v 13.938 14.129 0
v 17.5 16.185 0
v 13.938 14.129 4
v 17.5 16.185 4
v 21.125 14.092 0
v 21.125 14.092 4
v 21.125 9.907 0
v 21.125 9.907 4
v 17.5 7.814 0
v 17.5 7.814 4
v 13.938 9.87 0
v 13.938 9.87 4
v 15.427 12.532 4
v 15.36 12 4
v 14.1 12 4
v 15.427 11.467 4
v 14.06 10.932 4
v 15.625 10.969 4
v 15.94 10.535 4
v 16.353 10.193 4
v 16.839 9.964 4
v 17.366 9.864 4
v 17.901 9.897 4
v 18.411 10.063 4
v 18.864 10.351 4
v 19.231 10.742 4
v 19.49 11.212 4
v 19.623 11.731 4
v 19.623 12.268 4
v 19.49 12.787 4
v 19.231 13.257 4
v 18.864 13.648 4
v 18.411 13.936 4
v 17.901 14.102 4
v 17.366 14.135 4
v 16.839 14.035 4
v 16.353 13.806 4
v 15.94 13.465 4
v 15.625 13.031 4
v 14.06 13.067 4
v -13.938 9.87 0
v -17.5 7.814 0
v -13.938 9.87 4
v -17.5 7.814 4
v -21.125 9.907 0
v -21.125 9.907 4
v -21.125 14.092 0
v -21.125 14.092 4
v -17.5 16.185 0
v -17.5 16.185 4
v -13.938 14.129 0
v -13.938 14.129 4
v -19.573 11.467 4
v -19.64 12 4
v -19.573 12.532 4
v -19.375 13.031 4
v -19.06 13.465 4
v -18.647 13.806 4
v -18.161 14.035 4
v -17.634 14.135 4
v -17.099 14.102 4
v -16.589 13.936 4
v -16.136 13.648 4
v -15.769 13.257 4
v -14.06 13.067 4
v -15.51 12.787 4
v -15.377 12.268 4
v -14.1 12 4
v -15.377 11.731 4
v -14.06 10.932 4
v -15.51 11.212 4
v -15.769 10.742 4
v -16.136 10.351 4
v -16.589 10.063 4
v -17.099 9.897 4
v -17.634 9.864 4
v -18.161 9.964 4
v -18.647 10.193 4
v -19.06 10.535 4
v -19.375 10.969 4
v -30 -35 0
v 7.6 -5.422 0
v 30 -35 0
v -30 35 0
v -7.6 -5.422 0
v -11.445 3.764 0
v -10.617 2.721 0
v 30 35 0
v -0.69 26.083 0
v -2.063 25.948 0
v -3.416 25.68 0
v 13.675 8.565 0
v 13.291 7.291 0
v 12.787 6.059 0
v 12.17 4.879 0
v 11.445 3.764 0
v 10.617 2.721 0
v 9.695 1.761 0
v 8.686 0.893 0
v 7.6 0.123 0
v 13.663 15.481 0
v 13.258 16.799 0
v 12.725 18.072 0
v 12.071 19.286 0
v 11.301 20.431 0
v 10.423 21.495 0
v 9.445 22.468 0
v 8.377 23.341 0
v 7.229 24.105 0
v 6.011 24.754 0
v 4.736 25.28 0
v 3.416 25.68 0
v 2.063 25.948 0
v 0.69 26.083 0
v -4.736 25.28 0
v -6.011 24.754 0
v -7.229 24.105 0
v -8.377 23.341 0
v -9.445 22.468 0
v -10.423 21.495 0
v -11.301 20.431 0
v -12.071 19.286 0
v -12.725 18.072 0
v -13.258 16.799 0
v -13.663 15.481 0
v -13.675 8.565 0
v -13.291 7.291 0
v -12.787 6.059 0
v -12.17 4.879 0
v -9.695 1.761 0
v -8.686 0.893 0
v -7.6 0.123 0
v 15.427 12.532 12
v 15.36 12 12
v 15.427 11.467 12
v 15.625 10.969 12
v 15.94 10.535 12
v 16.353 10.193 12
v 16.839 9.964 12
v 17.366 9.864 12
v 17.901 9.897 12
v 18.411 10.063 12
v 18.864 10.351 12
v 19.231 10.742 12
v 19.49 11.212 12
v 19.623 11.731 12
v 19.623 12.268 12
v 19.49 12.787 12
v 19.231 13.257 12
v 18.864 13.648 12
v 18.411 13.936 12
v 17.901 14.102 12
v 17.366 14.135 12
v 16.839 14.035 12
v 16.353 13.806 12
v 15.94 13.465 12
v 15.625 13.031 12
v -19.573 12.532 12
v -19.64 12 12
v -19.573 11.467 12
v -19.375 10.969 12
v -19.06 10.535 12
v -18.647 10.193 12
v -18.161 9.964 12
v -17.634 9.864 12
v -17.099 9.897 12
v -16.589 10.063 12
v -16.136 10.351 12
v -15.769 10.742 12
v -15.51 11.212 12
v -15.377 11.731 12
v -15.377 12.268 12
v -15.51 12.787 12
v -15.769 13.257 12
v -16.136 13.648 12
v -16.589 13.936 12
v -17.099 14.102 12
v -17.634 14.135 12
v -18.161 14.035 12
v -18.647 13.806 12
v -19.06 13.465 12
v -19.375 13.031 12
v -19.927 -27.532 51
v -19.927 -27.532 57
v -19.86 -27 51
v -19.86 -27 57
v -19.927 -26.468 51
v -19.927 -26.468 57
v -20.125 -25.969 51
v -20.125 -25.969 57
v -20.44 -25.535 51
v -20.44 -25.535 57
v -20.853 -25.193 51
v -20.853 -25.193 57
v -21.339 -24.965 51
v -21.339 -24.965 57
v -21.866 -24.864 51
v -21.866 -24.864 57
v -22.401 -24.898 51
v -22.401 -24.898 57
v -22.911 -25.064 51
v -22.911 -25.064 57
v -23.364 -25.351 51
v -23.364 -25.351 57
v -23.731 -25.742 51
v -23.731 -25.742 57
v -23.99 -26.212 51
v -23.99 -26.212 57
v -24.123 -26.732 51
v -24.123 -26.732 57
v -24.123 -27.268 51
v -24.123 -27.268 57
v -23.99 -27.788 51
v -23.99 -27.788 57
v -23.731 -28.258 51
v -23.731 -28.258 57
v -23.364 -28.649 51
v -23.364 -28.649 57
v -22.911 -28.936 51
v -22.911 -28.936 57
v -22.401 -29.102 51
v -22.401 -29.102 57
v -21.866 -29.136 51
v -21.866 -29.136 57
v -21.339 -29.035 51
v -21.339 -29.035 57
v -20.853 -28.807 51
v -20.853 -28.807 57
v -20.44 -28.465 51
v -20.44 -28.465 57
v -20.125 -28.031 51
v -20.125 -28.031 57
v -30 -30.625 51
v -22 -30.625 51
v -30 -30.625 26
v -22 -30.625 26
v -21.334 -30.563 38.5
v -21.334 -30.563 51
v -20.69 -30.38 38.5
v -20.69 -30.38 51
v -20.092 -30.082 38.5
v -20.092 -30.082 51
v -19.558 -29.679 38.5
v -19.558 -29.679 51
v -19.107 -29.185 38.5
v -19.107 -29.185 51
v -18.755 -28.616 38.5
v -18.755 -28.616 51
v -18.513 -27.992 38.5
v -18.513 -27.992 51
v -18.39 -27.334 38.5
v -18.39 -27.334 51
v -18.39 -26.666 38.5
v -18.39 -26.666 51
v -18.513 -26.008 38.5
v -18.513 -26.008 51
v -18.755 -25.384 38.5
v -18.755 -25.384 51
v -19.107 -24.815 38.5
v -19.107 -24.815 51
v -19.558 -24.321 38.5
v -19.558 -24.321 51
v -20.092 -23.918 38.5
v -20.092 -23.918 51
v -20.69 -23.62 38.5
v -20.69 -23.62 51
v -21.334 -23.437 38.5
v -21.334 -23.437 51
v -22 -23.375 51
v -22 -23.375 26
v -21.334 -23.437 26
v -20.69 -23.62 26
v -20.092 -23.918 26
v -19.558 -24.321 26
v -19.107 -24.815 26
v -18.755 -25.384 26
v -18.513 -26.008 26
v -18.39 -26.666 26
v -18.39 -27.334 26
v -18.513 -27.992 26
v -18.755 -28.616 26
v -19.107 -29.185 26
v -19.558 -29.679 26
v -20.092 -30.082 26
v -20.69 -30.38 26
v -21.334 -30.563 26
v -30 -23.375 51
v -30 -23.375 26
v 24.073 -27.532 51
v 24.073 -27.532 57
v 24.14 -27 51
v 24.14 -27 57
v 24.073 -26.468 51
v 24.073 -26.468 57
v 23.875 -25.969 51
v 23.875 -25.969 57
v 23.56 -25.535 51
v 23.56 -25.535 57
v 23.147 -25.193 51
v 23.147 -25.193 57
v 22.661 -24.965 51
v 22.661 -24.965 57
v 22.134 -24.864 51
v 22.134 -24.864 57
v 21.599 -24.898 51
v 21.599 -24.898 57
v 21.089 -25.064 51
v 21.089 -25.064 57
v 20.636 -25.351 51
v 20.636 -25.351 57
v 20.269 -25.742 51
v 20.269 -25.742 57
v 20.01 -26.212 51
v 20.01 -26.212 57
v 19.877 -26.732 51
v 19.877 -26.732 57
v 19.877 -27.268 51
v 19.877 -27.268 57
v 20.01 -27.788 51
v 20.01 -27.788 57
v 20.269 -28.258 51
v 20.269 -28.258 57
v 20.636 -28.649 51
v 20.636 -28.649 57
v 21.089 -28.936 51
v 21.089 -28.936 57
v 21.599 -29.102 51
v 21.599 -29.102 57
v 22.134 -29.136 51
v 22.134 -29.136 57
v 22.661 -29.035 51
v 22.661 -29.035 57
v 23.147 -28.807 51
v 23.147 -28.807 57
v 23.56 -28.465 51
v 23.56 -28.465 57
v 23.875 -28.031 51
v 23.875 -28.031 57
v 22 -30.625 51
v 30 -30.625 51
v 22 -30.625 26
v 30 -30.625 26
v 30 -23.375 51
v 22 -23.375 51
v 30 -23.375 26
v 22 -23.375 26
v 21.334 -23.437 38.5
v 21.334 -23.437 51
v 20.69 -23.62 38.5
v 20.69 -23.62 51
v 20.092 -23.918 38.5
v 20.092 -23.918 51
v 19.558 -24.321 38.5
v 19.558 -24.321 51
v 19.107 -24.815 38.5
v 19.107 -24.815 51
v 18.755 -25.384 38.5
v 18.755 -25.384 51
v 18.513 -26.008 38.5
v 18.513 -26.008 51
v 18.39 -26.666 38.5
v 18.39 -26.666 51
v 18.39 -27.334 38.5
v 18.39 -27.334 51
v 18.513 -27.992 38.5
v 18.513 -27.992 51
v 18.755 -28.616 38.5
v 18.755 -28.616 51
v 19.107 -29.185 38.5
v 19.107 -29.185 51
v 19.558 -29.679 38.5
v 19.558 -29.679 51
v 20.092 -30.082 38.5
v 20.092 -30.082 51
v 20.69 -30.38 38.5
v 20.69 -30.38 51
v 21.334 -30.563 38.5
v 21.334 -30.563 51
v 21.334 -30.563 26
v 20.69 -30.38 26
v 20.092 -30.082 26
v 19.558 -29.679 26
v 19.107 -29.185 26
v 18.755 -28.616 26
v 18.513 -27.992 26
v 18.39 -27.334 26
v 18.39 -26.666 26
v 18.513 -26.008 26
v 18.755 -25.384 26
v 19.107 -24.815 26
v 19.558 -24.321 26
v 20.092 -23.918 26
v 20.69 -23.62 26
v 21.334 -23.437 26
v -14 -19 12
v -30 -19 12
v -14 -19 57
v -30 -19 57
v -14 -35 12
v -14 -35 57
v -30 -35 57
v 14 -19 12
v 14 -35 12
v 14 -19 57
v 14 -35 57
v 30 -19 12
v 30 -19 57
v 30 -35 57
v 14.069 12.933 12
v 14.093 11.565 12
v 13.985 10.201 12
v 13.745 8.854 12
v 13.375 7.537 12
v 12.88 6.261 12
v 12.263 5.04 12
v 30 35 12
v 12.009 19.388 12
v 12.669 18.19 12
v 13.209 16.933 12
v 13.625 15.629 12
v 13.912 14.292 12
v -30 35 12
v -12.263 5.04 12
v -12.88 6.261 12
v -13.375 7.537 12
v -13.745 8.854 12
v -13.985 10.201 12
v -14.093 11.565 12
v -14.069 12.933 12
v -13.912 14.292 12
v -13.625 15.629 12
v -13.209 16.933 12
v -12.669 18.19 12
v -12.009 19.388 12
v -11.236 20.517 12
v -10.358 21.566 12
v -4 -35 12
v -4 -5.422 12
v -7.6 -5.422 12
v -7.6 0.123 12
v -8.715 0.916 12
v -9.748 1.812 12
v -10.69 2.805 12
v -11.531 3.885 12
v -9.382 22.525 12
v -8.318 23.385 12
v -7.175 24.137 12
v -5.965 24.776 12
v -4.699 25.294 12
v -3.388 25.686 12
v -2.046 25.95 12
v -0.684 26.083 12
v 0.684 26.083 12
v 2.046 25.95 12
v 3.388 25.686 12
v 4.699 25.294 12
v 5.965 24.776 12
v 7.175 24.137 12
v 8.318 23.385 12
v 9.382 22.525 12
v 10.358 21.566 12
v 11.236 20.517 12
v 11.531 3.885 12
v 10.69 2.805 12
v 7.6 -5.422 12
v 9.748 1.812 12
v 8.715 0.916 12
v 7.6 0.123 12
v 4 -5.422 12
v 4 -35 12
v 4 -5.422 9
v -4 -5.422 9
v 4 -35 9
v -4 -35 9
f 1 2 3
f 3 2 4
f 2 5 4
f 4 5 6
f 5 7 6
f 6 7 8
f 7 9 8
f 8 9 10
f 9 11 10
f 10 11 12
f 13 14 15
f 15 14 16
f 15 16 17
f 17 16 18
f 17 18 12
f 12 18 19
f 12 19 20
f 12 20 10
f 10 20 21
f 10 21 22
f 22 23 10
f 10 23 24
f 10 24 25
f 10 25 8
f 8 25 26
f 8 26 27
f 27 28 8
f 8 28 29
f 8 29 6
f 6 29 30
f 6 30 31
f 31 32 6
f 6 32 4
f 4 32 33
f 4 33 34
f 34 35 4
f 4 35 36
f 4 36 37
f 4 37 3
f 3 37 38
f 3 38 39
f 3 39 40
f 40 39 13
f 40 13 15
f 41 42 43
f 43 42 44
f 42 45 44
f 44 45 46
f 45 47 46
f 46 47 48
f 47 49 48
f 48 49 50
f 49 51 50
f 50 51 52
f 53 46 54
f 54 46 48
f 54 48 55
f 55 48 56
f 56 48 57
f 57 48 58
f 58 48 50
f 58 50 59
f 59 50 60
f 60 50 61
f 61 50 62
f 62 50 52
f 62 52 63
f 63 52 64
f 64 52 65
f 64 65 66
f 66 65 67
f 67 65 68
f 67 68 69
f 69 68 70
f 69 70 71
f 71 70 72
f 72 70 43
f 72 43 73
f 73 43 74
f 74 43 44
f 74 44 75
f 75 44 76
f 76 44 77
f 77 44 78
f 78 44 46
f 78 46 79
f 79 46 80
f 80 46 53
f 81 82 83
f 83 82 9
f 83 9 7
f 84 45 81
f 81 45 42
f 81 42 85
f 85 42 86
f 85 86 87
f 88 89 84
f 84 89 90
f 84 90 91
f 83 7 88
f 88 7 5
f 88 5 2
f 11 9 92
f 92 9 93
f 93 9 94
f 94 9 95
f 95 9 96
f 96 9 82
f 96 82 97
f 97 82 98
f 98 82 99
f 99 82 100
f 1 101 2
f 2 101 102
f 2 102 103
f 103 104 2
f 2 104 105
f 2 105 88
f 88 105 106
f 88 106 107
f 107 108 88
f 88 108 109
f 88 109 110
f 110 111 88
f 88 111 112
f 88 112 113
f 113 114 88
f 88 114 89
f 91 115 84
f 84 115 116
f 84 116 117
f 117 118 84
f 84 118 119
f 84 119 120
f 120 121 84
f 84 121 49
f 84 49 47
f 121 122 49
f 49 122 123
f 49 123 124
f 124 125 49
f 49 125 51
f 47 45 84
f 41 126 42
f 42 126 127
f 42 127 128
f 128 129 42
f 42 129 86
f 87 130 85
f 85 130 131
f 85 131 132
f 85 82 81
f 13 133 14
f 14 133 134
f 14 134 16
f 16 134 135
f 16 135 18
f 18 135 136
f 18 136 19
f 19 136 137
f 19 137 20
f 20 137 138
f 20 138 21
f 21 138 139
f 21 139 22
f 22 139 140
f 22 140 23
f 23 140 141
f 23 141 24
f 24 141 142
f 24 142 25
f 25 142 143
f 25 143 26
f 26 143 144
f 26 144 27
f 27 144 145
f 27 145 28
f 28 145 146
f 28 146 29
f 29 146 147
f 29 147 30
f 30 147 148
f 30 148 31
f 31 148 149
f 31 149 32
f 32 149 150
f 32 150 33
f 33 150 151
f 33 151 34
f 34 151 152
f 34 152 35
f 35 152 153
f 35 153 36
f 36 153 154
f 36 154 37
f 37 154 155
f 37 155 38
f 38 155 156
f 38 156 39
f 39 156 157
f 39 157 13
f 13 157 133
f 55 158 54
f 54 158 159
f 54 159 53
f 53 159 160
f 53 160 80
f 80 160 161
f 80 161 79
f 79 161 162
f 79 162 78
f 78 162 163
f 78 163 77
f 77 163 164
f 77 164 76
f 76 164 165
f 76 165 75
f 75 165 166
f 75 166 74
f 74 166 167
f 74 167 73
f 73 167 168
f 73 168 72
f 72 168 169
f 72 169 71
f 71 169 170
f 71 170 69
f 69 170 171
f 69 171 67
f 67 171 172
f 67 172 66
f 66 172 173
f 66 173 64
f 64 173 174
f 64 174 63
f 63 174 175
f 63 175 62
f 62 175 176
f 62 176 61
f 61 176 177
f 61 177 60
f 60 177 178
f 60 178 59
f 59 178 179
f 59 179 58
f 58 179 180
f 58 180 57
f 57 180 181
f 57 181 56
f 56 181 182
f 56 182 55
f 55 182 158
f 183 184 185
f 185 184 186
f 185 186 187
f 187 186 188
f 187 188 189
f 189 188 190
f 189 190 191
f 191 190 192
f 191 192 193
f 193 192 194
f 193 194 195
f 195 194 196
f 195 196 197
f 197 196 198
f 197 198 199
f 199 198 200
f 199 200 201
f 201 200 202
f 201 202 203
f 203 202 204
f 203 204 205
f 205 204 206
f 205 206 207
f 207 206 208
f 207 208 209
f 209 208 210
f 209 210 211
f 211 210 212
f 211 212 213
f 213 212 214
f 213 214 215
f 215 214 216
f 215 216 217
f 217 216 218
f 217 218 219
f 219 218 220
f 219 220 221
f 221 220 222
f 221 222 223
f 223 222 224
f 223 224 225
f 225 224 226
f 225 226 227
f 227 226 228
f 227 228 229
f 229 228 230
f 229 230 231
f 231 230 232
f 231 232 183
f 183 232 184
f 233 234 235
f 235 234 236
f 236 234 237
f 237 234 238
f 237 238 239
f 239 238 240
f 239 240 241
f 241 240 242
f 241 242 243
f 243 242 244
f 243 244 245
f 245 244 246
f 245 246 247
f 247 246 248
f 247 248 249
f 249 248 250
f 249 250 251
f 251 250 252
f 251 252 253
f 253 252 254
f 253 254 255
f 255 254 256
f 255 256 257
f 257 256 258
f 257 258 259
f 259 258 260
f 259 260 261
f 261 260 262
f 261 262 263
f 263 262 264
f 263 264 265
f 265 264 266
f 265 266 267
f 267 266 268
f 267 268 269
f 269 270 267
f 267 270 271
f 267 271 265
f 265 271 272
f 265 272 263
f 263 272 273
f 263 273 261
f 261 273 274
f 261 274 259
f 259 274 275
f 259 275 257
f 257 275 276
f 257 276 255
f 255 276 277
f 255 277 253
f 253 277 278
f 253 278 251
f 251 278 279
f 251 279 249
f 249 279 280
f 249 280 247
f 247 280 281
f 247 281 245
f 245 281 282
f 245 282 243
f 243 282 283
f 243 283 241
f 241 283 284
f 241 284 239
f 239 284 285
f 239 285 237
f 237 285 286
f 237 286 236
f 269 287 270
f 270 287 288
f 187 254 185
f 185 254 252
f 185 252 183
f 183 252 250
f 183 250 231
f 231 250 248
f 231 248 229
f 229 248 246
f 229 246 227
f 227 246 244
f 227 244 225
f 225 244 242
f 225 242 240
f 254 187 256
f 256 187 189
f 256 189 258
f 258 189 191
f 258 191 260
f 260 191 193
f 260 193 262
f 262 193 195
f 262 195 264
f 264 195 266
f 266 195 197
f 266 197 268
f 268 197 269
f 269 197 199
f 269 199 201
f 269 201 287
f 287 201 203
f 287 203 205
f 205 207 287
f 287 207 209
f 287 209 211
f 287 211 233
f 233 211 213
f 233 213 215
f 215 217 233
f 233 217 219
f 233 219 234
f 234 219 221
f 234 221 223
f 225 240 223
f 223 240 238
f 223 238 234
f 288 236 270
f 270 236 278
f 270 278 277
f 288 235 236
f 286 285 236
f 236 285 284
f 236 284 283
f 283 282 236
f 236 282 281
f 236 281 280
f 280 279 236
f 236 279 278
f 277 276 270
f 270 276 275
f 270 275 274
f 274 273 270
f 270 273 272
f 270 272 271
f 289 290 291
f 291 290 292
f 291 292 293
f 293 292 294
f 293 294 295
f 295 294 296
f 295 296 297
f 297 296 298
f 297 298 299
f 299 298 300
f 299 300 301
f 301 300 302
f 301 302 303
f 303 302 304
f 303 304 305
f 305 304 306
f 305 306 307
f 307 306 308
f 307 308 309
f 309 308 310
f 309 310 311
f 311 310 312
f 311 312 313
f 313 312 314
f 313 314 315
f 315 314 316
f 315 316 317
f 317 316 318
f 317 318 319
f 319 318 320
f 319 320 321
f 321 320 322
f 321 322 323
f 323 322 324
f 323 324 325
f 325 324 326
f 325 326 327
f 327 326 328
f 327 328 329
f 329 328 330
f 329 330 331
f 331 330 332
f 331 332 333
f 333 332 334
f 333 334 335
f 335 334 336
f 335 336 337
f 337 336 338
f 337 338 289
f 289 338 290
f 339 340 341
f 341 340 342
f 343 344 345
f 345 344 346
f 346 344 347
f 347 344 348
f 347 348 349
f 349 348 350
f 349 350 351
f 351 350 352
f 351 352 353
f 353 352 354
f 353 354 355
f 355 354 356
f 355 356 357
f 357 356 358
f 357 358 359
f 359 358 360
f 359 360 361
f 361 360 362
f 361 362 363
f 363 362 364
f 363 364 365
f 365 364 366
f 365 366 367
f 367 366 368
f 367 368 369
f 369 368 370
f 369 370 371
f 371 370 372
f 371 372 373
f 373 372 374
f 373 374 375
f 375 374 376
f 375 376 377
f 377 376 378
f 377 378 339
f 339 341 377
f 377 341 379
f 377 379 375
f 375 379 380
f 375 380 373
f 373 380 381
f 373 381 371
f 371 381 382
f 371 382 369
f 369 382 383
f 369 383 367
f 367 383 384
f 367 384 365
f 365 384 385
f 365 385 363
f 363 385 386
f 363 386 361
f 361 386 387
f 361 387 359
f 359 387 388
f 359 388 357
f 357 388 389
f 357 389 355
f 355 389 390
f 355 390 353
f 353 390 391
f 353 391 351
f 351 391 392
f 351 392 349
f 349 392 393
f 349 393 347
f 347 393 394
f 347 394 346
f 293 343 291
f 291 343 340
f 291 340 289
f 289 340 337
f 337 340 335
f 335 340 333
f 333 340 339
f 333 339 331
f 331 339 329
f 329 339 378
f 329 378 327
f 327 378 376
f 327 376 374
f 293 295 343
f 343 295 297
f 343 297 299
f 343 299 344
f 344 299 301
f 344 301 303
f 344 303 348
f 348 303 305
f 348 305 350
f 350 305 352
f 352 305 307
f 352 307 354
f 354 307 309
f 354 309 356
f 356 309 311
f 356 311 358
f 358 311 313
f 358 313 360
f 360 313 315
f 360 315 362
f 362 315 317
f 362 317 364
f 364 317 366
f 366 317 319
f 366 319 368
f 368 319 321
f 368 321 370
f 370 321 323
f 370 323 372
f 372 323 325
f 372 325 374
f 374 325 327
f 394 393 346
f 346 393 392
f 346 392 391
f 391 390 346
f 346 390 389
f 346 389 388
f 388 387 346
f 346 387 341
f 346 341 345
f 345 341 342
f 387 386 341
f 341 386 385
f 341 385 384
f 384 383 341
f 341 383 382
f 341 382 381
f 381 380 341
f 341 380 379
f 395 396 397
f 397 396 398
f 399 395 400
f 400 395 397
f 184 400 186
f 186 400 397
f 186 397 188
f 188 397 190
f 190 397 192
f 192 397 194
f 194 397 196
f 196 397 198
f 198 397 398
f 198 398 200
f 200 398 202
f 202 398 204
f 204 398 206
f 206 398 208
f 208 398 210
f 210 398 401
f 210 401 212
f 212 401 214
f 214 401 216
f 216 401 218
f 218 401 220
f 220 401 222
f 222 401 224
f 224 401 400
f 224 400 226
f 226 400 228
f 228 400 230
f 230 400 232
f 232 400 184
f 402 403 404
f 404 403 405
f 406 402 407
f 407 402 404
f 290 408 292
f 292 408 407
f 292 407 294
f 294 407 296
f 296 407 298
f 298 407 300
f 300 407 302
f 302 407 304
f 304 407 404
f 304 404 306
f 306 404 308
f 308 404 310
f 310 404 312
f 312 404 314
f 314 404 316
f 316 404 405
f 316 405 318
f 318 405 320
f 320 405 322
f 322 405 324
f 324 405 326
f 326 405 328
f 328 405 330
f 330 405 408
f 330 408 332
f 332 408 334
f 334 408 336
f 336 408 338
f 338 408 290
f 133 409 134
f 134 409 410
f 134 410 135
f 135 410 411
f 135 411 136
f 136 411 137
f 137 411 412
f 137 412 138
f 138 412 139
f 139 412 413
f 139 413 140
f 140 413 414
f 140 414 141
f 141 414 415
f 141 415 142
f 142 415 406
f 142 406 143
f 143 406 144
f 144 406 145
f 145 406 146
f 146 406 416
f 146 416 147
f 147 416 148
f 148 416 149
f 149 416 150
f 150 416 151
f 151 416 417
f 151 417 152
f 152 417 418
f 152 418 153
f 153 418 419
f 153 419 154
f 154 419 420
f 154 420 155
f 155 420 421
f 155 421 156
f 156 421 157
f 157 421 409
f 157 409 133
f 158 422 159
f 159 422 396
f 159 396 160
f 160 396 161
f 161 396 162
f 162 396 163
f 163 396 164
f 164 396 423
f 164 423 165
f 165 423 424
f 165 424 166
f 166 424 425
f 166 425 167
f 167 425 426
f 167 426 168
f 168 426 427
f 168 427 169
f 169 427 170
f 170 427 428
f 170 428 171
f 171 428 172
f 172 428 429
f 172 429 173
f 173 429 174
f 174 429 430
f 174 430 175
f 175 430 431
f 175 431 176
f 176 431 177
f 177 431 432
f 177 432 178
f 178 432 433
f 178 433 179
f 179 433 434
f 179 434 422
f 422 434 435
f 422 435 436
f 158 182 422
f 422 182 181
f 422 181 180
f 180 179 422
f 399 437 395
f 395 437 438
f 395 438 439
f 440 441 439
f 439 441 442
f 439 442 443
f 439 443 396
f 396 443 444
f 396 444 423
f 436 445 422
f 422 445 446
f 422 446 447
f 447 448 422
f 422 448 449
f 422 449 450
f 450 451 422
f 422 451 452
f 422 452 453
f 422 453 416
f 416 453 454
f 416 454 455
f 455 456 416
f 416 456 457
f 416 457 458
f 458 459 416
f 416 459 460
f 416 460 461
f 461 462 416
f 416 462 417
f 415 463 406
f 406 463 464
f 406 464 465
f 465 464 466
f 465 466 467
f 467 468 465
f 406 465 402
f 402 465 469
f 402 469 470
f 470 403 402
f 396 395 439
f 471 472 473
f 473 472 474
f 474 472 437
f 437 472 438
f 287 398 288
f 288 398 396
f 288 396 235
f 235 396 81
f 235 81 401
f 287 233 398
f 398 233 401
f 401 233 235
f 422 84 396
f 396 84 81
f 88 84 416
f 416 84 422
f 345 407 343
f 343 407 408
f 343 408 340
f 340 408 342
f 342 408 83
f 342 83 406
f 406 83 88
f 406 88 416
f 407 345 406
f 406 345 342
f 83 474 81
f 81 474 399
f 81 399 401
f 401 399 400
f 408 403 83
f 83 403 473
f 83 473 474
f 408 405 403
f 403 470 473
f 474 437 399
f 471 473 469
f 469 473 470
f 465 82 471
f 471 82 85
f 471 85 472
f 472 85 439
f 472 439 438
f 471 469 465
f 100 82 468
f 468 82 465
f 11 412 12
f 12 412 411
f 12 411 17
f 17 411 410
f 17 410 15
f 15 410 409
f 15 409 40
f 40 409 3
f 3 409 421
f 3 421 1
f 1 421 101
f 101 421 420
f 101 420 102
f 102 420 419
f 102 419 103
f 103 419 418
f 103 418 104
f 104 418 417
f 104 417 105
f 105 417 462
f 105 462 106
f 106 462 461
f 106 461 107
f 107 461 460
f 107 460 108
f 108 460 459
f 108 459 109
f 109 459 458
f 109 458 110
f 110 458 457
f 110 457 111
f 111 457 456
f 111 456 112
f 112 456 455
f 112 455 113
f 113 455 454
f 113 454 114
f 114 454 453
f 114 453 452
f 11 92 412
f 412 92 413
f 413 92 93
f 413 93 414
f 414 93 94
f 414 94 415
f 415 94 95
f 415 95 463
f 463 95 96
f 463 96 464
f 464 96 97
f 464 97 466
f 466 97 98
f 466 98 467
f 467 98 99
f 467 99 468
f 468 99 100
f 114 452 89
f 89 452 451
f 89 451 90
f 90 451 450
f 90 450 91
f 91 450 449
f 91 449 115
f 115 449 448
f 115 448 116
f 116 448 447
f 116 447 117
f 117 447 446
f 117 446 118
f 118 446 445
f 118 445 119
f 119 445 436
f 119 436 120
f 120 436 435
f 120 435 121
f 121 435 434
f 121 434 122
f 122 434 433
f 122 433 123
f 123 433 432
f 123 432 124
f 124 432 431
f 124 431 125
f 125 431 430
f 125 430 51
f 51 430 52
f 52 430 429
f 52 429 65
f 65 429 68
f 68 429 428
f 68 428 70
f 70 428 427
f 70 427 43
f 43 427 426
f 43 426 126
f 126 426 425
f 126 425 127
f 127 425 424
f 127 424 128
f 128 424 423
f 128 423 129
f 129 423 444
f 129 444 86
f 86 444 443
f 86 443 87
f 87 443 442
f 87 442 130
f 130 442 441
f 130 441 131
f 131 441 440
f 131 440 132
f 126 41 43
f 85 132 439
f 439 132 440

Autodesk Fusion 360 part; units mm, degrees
sketch "01 - PRIMARY SUPPORT MECHANISM ( RIGHT SIDE ) SKETCH" plane through (0, 0, 0) normal (0, 0, 1) x (1, 0, 0)
  line L0 (-30, 35) -> (30, 35)
  line L1 (30, 35) -> (30, -35)
  line L2 (30, -35) -> (-30, -35)
  line L3 (-30, -35) -> (-30, 35)
  line L4 (-30, -19) -> (30, -19) construction
  line L5 (0, -35) -> (0, -5.422) construction
  line L6 (7.6, -5.422) -> (7.6, 0.1231)
  arc A0 (7.6, 0.1231) -> (-7.6, 0.1231) centre (0, 11.9996) ccw
  line L7 (-7.6, -5.422) -> (7.6, -5.422)
  line L8 (-7.6, -5.422) -> (-7.6, 0.1231)
  line L9 (4, -5.422) -> (4, -35)
  line L10 (-4, -5.422) -> (-4, -35)
  line L11 (-17.5, 11.9996) -> (17.5, 11.9996) construction
  circle A1 centre (17.5, 11.9996) radius 2.14
  line L12 (21.125, 14.0925) -> (17.5, 16.1854)
  line L13 (17.5, 16.1854) -> (13.875, 14.0925)
  line L14 (13.875, 14.0925) -> (13.875, 9.9067)
  line L15 (13.875, 9.9067) -> (17.5, 7.8138)
  line L16 (17.5, 7.8138) -> (21.125, 9.9067)
  line L17 (21.125, 9.9067) -> (21.125, 14.0925)
  line L18 (17.5, 11.9996) -> (17.5, 14.1396) construction
  circle A2 centre (-17.5, 11.9996) radius 2.14
  line L19 (-13.875, 9.9067) -> (-13.875, 14.0925)
  line L20 (-13.875, 14.0925) -> (-17.5, 16.1854)
  line L21 (-17.5, 16.1854) -> (-21.125, 14.0925)
  line L22 (-21.125, 14.0925) -> (-21.125, 9.9067)
  line L23 (-21.125, 9.9067) -> (-17.5, 7.8138)
  line L24 (-17.5, 7.8138) -> (-13.875, 9.9067)
  line L25 (-17.5, 11.9996) -> (-17.5, 14.1396) construction
  point P0 (17.5, 11.9996)
  point P1 (-17.5, 11.9996)
  dimension "d1" = 60
  dimension "d2" = 70
  dimension "d3" = 30
  dimension "d4" = 35
  dimension "d5" = 16
  dimension "d12" = 29.578
  dimension "d14" = 15.2
  dimension "d15" = 5.5451
  dimension "d16" = 14.1
  dimension "d21" = 17.4216
  dimension "d24" = 8
  dimension "d25" = 4
  dimension "d55" = 35
  dimension "d56" = 4.28
  dimension "d57" = 3.625
  dimension "d58" = 4.28
  dimension "d59" = 3.625
extrude "Extrude2" add sketch "01 - PRIMARY SUPPORT MECHANISM ( RIGHT SIDE ) SKETCH" along normal blind 12 contours L0 L1 L2 L3 L6 A0 L7 L8 L9 L10 L12 L13 L15 L16 L17 L20 L21 L22 L23 L24 | A0 L20 L21 L22 L23 L24 | A0 L12 L13 L15 L16 L17 | A1 | A2
extrude "Extrude3" add sketch "01 - PRIMARY SUPPORT MECHANISM ( RIGHT SIDE ) SKETCH" along normal blind 9 contours L2 L7 L9 L10
sketch "02 - PRIMARY SUPPORT MECHANISM ( RIGHT SIDE ) SKETCH" plane through (0, 0, 12) normal (0, 0, 1) x (-1, 0, 0)
  line L0 (7.6, 5.422) -> (7.6, -0.1231)
  arc A0 (-7.6, -0.1231) -> (7.6, -0.1231) centre (0, -11.9996) ccw
  line L1 (-7.6, -0.1231) -> (-7.6, 5.422)
  line L2 (-7.6, 5.422) -> (-4, 5.422)
  line L3 (-4, 5.422) -> (-4, 35)
  line L4 (-4, 35) -> (-30, 35)
  line L5 (-30, 35) -> (-30, -35)
  line L6 (-30, -35) -> (30, -35)
  line L7 (30, -35) -> (30, 35)
  line L8 (30, 35) -> (4, 35)
  line L9 (4, 35) -> (4, 5.422)
  line L10 (4, 5.422) -> (7.6, 5.422)
  line L11 (30, 35) -> (14, 35)
  line L12 (14, 35) -> (14, 19)
  line L13 (14, 19) -> (30, 19)
  line L14 (30, 19) -> (30, 35)
  line L15 (-30, 35) -> (-14, 35)
  line L16 (-14, 35) -> (-14, 19)
  line L17 (-14, 19) -> (-30, 19)
  line L18 (-30, 19) -> (-30, 35)
  dimension "d30" = 16
  dimension "d31" = 16
  dimension "d32" = 16
  dimension "d33" = 16
extrude "Extrude4" add sketch "02 - PRIMARY SUPPORT MECHANISM ( RIGHT SIDE ) SKETCH" along normal blind 45 contours L7 L8 L11 L12 L13 L14 | L4 L5 L15 L16 L17 L18
sketch "03 - PRIMARY SUPPORT MECHANISM ( RIGHT SIDE ) SKETCH" plane through (0, 0, 57) normal (0, 0, 1) x (-1, 0, 0)
  line L0 (-30, 19) -> (-14, 19)
  line L1 (-14, 19) -> (-14, 35)
  line L2 (-14, 35) -> (-30, 35)
  line L3 (-30, 35) -> (-30, 19)
  line L4 (-14, 27) -> (-30, 27) construction
  line L5 (-22, 19) -> (-22, 35) construction
  line L6 (-25.625, 24.9071) -> (-22, 22.8142)
  line L7 (-22, 22.8142) -> (-18.375, 24.9071)
  line L8 (-18.375, 24.9071) -> (-18.375, 29.0929)
  line L9 (-18.375, 29.0929) -> (-22, 31.1858)
  line L10 (-22, 31.1858) -> (-25.625, 29.0929)
  line L11 (-25.625, 29.0929) -> (-25.625, 24.9071)
  line L12 (-22, 22.8142) -> (-30, 22.8142)
  line L13 (-22, 31.1858) -> (-30, 31.1858)
  line L14 (-30, 31.1858) -> (-30, 22.8142)
  circle A0 centre (-22, 27) radius 3.625
  line L15 (-22, 23.375) -> (-22, 22.8142)
  line L16 (-22, 31.1858) -> (-22, 30.625)
  line L17 (-22, 23.375) -> (-30, 23.375)
  line L18 (-22, 30.625) -> (-30, 30.625)
  circle A1 centre (-22, 27) radius 2.14
  point P0 (-22, 27)
  dimension "d36" = 3.625
  dimension "d42" = 4.28
extrude "Extrude5" cut sketch "03 - PRIMARY SUPPORT MECHANISM ( RIGHT SIDE ) SKETCH" against normal blind 25 from surface at -6 contours L3 L6 L10 L11 L14 L17 L18 | L6 A0 L17 | A0 | L10 A0 L18 | L6 L11 A0 | L10 L11 A0 | A1
extrude "Extrude7" cut sketch "03 - PRIMARY SUPPORT MECHANISM ( RIGHT SIDE ) SKETCH" against normal blind 6 contours A1
sketch "04 - PRIMARY SUPPORT MECHANISM ( RIGHT SIDE ) SKETCH" plane through (0, 0, 57) normal (0, 0, 1) x (-1, 0, 0)
  line L0 (30, 19) -> (30, 35)
  line L1 (30, 35) -> (14, 35)
  line L2 (14, 35) -> (14, 19)
  line L3 (14, 19) -> (30, 19)
  line L4 (30, 27) -> (14, 27) construction
  line L5 (22, 35) -> (22, 19) construction
  line L6 (18.375, 24.9071) -> (22, 22.8142)
  line L7 (22, 22.8142) -> (25.625, 24.9071)
  line L8 (25.625, 24.9071) -> (25.625, 29.0929)
  line L9 (25.625, 29.0929) -> (22, 31.1858)
  line L10 (22, 31.1858) -> (18.375, 29.0929)
  line L11 (18.375, 29.0929) -> (18.375, 24.9071)
  circle A0 centre (22, 27) radius 3.625
  circle A1 centre (22, 27) radius 2.14
  line L12 (22, 22.8142) -> (30, 22.8142)
  line L13 (22, 31.1858) -> (30, 31.1858)
  line L14 (30, 31.1858) -> (30, 22.8142)
  line L15 (22, 23.375) -> (30, 23.375)
  line L16 (22, 30.625) -> (30, 30.625)
  point P0 (22, 27)
  dimension "d45" = 3.625
  dimension "d46" = 4.28
extrude "Extrude9" cut sketch "04 - PRIMARY SUPPORT MECHANISM ( RIGHT SIDE ) SKETCH" against normal blind 25 from surface at -6 contours L0 L7 L8 L9 L14 L15 L16 | L7 A0 L15 | A0 | L9 A0 L16 | L7 L8 A0 | L8 L9 A0 | A1
extrude "Extrude10" cut sketch "04 - PRIMARY SUPPORT MECHANISM ( RIGHT SIDE ) SKETCH" against normal blind 6 contours A1
extrude "Extrude11" cut sketch "01 - PRIMARY SUPPORT MECHANISM ( RIGHT SIDE ) SKETCH" along normal blind 12 contours A1 | A2
extrude "Extrude12" cut sketch "01 - PRIMARY SUPPORT MECHANISM ( RIGHT SIDE ) SKETCH" along normal blind 4 contours A0 L20 L21 L22 L23 L24 | A0 L12 L13 L15 L16 L17
